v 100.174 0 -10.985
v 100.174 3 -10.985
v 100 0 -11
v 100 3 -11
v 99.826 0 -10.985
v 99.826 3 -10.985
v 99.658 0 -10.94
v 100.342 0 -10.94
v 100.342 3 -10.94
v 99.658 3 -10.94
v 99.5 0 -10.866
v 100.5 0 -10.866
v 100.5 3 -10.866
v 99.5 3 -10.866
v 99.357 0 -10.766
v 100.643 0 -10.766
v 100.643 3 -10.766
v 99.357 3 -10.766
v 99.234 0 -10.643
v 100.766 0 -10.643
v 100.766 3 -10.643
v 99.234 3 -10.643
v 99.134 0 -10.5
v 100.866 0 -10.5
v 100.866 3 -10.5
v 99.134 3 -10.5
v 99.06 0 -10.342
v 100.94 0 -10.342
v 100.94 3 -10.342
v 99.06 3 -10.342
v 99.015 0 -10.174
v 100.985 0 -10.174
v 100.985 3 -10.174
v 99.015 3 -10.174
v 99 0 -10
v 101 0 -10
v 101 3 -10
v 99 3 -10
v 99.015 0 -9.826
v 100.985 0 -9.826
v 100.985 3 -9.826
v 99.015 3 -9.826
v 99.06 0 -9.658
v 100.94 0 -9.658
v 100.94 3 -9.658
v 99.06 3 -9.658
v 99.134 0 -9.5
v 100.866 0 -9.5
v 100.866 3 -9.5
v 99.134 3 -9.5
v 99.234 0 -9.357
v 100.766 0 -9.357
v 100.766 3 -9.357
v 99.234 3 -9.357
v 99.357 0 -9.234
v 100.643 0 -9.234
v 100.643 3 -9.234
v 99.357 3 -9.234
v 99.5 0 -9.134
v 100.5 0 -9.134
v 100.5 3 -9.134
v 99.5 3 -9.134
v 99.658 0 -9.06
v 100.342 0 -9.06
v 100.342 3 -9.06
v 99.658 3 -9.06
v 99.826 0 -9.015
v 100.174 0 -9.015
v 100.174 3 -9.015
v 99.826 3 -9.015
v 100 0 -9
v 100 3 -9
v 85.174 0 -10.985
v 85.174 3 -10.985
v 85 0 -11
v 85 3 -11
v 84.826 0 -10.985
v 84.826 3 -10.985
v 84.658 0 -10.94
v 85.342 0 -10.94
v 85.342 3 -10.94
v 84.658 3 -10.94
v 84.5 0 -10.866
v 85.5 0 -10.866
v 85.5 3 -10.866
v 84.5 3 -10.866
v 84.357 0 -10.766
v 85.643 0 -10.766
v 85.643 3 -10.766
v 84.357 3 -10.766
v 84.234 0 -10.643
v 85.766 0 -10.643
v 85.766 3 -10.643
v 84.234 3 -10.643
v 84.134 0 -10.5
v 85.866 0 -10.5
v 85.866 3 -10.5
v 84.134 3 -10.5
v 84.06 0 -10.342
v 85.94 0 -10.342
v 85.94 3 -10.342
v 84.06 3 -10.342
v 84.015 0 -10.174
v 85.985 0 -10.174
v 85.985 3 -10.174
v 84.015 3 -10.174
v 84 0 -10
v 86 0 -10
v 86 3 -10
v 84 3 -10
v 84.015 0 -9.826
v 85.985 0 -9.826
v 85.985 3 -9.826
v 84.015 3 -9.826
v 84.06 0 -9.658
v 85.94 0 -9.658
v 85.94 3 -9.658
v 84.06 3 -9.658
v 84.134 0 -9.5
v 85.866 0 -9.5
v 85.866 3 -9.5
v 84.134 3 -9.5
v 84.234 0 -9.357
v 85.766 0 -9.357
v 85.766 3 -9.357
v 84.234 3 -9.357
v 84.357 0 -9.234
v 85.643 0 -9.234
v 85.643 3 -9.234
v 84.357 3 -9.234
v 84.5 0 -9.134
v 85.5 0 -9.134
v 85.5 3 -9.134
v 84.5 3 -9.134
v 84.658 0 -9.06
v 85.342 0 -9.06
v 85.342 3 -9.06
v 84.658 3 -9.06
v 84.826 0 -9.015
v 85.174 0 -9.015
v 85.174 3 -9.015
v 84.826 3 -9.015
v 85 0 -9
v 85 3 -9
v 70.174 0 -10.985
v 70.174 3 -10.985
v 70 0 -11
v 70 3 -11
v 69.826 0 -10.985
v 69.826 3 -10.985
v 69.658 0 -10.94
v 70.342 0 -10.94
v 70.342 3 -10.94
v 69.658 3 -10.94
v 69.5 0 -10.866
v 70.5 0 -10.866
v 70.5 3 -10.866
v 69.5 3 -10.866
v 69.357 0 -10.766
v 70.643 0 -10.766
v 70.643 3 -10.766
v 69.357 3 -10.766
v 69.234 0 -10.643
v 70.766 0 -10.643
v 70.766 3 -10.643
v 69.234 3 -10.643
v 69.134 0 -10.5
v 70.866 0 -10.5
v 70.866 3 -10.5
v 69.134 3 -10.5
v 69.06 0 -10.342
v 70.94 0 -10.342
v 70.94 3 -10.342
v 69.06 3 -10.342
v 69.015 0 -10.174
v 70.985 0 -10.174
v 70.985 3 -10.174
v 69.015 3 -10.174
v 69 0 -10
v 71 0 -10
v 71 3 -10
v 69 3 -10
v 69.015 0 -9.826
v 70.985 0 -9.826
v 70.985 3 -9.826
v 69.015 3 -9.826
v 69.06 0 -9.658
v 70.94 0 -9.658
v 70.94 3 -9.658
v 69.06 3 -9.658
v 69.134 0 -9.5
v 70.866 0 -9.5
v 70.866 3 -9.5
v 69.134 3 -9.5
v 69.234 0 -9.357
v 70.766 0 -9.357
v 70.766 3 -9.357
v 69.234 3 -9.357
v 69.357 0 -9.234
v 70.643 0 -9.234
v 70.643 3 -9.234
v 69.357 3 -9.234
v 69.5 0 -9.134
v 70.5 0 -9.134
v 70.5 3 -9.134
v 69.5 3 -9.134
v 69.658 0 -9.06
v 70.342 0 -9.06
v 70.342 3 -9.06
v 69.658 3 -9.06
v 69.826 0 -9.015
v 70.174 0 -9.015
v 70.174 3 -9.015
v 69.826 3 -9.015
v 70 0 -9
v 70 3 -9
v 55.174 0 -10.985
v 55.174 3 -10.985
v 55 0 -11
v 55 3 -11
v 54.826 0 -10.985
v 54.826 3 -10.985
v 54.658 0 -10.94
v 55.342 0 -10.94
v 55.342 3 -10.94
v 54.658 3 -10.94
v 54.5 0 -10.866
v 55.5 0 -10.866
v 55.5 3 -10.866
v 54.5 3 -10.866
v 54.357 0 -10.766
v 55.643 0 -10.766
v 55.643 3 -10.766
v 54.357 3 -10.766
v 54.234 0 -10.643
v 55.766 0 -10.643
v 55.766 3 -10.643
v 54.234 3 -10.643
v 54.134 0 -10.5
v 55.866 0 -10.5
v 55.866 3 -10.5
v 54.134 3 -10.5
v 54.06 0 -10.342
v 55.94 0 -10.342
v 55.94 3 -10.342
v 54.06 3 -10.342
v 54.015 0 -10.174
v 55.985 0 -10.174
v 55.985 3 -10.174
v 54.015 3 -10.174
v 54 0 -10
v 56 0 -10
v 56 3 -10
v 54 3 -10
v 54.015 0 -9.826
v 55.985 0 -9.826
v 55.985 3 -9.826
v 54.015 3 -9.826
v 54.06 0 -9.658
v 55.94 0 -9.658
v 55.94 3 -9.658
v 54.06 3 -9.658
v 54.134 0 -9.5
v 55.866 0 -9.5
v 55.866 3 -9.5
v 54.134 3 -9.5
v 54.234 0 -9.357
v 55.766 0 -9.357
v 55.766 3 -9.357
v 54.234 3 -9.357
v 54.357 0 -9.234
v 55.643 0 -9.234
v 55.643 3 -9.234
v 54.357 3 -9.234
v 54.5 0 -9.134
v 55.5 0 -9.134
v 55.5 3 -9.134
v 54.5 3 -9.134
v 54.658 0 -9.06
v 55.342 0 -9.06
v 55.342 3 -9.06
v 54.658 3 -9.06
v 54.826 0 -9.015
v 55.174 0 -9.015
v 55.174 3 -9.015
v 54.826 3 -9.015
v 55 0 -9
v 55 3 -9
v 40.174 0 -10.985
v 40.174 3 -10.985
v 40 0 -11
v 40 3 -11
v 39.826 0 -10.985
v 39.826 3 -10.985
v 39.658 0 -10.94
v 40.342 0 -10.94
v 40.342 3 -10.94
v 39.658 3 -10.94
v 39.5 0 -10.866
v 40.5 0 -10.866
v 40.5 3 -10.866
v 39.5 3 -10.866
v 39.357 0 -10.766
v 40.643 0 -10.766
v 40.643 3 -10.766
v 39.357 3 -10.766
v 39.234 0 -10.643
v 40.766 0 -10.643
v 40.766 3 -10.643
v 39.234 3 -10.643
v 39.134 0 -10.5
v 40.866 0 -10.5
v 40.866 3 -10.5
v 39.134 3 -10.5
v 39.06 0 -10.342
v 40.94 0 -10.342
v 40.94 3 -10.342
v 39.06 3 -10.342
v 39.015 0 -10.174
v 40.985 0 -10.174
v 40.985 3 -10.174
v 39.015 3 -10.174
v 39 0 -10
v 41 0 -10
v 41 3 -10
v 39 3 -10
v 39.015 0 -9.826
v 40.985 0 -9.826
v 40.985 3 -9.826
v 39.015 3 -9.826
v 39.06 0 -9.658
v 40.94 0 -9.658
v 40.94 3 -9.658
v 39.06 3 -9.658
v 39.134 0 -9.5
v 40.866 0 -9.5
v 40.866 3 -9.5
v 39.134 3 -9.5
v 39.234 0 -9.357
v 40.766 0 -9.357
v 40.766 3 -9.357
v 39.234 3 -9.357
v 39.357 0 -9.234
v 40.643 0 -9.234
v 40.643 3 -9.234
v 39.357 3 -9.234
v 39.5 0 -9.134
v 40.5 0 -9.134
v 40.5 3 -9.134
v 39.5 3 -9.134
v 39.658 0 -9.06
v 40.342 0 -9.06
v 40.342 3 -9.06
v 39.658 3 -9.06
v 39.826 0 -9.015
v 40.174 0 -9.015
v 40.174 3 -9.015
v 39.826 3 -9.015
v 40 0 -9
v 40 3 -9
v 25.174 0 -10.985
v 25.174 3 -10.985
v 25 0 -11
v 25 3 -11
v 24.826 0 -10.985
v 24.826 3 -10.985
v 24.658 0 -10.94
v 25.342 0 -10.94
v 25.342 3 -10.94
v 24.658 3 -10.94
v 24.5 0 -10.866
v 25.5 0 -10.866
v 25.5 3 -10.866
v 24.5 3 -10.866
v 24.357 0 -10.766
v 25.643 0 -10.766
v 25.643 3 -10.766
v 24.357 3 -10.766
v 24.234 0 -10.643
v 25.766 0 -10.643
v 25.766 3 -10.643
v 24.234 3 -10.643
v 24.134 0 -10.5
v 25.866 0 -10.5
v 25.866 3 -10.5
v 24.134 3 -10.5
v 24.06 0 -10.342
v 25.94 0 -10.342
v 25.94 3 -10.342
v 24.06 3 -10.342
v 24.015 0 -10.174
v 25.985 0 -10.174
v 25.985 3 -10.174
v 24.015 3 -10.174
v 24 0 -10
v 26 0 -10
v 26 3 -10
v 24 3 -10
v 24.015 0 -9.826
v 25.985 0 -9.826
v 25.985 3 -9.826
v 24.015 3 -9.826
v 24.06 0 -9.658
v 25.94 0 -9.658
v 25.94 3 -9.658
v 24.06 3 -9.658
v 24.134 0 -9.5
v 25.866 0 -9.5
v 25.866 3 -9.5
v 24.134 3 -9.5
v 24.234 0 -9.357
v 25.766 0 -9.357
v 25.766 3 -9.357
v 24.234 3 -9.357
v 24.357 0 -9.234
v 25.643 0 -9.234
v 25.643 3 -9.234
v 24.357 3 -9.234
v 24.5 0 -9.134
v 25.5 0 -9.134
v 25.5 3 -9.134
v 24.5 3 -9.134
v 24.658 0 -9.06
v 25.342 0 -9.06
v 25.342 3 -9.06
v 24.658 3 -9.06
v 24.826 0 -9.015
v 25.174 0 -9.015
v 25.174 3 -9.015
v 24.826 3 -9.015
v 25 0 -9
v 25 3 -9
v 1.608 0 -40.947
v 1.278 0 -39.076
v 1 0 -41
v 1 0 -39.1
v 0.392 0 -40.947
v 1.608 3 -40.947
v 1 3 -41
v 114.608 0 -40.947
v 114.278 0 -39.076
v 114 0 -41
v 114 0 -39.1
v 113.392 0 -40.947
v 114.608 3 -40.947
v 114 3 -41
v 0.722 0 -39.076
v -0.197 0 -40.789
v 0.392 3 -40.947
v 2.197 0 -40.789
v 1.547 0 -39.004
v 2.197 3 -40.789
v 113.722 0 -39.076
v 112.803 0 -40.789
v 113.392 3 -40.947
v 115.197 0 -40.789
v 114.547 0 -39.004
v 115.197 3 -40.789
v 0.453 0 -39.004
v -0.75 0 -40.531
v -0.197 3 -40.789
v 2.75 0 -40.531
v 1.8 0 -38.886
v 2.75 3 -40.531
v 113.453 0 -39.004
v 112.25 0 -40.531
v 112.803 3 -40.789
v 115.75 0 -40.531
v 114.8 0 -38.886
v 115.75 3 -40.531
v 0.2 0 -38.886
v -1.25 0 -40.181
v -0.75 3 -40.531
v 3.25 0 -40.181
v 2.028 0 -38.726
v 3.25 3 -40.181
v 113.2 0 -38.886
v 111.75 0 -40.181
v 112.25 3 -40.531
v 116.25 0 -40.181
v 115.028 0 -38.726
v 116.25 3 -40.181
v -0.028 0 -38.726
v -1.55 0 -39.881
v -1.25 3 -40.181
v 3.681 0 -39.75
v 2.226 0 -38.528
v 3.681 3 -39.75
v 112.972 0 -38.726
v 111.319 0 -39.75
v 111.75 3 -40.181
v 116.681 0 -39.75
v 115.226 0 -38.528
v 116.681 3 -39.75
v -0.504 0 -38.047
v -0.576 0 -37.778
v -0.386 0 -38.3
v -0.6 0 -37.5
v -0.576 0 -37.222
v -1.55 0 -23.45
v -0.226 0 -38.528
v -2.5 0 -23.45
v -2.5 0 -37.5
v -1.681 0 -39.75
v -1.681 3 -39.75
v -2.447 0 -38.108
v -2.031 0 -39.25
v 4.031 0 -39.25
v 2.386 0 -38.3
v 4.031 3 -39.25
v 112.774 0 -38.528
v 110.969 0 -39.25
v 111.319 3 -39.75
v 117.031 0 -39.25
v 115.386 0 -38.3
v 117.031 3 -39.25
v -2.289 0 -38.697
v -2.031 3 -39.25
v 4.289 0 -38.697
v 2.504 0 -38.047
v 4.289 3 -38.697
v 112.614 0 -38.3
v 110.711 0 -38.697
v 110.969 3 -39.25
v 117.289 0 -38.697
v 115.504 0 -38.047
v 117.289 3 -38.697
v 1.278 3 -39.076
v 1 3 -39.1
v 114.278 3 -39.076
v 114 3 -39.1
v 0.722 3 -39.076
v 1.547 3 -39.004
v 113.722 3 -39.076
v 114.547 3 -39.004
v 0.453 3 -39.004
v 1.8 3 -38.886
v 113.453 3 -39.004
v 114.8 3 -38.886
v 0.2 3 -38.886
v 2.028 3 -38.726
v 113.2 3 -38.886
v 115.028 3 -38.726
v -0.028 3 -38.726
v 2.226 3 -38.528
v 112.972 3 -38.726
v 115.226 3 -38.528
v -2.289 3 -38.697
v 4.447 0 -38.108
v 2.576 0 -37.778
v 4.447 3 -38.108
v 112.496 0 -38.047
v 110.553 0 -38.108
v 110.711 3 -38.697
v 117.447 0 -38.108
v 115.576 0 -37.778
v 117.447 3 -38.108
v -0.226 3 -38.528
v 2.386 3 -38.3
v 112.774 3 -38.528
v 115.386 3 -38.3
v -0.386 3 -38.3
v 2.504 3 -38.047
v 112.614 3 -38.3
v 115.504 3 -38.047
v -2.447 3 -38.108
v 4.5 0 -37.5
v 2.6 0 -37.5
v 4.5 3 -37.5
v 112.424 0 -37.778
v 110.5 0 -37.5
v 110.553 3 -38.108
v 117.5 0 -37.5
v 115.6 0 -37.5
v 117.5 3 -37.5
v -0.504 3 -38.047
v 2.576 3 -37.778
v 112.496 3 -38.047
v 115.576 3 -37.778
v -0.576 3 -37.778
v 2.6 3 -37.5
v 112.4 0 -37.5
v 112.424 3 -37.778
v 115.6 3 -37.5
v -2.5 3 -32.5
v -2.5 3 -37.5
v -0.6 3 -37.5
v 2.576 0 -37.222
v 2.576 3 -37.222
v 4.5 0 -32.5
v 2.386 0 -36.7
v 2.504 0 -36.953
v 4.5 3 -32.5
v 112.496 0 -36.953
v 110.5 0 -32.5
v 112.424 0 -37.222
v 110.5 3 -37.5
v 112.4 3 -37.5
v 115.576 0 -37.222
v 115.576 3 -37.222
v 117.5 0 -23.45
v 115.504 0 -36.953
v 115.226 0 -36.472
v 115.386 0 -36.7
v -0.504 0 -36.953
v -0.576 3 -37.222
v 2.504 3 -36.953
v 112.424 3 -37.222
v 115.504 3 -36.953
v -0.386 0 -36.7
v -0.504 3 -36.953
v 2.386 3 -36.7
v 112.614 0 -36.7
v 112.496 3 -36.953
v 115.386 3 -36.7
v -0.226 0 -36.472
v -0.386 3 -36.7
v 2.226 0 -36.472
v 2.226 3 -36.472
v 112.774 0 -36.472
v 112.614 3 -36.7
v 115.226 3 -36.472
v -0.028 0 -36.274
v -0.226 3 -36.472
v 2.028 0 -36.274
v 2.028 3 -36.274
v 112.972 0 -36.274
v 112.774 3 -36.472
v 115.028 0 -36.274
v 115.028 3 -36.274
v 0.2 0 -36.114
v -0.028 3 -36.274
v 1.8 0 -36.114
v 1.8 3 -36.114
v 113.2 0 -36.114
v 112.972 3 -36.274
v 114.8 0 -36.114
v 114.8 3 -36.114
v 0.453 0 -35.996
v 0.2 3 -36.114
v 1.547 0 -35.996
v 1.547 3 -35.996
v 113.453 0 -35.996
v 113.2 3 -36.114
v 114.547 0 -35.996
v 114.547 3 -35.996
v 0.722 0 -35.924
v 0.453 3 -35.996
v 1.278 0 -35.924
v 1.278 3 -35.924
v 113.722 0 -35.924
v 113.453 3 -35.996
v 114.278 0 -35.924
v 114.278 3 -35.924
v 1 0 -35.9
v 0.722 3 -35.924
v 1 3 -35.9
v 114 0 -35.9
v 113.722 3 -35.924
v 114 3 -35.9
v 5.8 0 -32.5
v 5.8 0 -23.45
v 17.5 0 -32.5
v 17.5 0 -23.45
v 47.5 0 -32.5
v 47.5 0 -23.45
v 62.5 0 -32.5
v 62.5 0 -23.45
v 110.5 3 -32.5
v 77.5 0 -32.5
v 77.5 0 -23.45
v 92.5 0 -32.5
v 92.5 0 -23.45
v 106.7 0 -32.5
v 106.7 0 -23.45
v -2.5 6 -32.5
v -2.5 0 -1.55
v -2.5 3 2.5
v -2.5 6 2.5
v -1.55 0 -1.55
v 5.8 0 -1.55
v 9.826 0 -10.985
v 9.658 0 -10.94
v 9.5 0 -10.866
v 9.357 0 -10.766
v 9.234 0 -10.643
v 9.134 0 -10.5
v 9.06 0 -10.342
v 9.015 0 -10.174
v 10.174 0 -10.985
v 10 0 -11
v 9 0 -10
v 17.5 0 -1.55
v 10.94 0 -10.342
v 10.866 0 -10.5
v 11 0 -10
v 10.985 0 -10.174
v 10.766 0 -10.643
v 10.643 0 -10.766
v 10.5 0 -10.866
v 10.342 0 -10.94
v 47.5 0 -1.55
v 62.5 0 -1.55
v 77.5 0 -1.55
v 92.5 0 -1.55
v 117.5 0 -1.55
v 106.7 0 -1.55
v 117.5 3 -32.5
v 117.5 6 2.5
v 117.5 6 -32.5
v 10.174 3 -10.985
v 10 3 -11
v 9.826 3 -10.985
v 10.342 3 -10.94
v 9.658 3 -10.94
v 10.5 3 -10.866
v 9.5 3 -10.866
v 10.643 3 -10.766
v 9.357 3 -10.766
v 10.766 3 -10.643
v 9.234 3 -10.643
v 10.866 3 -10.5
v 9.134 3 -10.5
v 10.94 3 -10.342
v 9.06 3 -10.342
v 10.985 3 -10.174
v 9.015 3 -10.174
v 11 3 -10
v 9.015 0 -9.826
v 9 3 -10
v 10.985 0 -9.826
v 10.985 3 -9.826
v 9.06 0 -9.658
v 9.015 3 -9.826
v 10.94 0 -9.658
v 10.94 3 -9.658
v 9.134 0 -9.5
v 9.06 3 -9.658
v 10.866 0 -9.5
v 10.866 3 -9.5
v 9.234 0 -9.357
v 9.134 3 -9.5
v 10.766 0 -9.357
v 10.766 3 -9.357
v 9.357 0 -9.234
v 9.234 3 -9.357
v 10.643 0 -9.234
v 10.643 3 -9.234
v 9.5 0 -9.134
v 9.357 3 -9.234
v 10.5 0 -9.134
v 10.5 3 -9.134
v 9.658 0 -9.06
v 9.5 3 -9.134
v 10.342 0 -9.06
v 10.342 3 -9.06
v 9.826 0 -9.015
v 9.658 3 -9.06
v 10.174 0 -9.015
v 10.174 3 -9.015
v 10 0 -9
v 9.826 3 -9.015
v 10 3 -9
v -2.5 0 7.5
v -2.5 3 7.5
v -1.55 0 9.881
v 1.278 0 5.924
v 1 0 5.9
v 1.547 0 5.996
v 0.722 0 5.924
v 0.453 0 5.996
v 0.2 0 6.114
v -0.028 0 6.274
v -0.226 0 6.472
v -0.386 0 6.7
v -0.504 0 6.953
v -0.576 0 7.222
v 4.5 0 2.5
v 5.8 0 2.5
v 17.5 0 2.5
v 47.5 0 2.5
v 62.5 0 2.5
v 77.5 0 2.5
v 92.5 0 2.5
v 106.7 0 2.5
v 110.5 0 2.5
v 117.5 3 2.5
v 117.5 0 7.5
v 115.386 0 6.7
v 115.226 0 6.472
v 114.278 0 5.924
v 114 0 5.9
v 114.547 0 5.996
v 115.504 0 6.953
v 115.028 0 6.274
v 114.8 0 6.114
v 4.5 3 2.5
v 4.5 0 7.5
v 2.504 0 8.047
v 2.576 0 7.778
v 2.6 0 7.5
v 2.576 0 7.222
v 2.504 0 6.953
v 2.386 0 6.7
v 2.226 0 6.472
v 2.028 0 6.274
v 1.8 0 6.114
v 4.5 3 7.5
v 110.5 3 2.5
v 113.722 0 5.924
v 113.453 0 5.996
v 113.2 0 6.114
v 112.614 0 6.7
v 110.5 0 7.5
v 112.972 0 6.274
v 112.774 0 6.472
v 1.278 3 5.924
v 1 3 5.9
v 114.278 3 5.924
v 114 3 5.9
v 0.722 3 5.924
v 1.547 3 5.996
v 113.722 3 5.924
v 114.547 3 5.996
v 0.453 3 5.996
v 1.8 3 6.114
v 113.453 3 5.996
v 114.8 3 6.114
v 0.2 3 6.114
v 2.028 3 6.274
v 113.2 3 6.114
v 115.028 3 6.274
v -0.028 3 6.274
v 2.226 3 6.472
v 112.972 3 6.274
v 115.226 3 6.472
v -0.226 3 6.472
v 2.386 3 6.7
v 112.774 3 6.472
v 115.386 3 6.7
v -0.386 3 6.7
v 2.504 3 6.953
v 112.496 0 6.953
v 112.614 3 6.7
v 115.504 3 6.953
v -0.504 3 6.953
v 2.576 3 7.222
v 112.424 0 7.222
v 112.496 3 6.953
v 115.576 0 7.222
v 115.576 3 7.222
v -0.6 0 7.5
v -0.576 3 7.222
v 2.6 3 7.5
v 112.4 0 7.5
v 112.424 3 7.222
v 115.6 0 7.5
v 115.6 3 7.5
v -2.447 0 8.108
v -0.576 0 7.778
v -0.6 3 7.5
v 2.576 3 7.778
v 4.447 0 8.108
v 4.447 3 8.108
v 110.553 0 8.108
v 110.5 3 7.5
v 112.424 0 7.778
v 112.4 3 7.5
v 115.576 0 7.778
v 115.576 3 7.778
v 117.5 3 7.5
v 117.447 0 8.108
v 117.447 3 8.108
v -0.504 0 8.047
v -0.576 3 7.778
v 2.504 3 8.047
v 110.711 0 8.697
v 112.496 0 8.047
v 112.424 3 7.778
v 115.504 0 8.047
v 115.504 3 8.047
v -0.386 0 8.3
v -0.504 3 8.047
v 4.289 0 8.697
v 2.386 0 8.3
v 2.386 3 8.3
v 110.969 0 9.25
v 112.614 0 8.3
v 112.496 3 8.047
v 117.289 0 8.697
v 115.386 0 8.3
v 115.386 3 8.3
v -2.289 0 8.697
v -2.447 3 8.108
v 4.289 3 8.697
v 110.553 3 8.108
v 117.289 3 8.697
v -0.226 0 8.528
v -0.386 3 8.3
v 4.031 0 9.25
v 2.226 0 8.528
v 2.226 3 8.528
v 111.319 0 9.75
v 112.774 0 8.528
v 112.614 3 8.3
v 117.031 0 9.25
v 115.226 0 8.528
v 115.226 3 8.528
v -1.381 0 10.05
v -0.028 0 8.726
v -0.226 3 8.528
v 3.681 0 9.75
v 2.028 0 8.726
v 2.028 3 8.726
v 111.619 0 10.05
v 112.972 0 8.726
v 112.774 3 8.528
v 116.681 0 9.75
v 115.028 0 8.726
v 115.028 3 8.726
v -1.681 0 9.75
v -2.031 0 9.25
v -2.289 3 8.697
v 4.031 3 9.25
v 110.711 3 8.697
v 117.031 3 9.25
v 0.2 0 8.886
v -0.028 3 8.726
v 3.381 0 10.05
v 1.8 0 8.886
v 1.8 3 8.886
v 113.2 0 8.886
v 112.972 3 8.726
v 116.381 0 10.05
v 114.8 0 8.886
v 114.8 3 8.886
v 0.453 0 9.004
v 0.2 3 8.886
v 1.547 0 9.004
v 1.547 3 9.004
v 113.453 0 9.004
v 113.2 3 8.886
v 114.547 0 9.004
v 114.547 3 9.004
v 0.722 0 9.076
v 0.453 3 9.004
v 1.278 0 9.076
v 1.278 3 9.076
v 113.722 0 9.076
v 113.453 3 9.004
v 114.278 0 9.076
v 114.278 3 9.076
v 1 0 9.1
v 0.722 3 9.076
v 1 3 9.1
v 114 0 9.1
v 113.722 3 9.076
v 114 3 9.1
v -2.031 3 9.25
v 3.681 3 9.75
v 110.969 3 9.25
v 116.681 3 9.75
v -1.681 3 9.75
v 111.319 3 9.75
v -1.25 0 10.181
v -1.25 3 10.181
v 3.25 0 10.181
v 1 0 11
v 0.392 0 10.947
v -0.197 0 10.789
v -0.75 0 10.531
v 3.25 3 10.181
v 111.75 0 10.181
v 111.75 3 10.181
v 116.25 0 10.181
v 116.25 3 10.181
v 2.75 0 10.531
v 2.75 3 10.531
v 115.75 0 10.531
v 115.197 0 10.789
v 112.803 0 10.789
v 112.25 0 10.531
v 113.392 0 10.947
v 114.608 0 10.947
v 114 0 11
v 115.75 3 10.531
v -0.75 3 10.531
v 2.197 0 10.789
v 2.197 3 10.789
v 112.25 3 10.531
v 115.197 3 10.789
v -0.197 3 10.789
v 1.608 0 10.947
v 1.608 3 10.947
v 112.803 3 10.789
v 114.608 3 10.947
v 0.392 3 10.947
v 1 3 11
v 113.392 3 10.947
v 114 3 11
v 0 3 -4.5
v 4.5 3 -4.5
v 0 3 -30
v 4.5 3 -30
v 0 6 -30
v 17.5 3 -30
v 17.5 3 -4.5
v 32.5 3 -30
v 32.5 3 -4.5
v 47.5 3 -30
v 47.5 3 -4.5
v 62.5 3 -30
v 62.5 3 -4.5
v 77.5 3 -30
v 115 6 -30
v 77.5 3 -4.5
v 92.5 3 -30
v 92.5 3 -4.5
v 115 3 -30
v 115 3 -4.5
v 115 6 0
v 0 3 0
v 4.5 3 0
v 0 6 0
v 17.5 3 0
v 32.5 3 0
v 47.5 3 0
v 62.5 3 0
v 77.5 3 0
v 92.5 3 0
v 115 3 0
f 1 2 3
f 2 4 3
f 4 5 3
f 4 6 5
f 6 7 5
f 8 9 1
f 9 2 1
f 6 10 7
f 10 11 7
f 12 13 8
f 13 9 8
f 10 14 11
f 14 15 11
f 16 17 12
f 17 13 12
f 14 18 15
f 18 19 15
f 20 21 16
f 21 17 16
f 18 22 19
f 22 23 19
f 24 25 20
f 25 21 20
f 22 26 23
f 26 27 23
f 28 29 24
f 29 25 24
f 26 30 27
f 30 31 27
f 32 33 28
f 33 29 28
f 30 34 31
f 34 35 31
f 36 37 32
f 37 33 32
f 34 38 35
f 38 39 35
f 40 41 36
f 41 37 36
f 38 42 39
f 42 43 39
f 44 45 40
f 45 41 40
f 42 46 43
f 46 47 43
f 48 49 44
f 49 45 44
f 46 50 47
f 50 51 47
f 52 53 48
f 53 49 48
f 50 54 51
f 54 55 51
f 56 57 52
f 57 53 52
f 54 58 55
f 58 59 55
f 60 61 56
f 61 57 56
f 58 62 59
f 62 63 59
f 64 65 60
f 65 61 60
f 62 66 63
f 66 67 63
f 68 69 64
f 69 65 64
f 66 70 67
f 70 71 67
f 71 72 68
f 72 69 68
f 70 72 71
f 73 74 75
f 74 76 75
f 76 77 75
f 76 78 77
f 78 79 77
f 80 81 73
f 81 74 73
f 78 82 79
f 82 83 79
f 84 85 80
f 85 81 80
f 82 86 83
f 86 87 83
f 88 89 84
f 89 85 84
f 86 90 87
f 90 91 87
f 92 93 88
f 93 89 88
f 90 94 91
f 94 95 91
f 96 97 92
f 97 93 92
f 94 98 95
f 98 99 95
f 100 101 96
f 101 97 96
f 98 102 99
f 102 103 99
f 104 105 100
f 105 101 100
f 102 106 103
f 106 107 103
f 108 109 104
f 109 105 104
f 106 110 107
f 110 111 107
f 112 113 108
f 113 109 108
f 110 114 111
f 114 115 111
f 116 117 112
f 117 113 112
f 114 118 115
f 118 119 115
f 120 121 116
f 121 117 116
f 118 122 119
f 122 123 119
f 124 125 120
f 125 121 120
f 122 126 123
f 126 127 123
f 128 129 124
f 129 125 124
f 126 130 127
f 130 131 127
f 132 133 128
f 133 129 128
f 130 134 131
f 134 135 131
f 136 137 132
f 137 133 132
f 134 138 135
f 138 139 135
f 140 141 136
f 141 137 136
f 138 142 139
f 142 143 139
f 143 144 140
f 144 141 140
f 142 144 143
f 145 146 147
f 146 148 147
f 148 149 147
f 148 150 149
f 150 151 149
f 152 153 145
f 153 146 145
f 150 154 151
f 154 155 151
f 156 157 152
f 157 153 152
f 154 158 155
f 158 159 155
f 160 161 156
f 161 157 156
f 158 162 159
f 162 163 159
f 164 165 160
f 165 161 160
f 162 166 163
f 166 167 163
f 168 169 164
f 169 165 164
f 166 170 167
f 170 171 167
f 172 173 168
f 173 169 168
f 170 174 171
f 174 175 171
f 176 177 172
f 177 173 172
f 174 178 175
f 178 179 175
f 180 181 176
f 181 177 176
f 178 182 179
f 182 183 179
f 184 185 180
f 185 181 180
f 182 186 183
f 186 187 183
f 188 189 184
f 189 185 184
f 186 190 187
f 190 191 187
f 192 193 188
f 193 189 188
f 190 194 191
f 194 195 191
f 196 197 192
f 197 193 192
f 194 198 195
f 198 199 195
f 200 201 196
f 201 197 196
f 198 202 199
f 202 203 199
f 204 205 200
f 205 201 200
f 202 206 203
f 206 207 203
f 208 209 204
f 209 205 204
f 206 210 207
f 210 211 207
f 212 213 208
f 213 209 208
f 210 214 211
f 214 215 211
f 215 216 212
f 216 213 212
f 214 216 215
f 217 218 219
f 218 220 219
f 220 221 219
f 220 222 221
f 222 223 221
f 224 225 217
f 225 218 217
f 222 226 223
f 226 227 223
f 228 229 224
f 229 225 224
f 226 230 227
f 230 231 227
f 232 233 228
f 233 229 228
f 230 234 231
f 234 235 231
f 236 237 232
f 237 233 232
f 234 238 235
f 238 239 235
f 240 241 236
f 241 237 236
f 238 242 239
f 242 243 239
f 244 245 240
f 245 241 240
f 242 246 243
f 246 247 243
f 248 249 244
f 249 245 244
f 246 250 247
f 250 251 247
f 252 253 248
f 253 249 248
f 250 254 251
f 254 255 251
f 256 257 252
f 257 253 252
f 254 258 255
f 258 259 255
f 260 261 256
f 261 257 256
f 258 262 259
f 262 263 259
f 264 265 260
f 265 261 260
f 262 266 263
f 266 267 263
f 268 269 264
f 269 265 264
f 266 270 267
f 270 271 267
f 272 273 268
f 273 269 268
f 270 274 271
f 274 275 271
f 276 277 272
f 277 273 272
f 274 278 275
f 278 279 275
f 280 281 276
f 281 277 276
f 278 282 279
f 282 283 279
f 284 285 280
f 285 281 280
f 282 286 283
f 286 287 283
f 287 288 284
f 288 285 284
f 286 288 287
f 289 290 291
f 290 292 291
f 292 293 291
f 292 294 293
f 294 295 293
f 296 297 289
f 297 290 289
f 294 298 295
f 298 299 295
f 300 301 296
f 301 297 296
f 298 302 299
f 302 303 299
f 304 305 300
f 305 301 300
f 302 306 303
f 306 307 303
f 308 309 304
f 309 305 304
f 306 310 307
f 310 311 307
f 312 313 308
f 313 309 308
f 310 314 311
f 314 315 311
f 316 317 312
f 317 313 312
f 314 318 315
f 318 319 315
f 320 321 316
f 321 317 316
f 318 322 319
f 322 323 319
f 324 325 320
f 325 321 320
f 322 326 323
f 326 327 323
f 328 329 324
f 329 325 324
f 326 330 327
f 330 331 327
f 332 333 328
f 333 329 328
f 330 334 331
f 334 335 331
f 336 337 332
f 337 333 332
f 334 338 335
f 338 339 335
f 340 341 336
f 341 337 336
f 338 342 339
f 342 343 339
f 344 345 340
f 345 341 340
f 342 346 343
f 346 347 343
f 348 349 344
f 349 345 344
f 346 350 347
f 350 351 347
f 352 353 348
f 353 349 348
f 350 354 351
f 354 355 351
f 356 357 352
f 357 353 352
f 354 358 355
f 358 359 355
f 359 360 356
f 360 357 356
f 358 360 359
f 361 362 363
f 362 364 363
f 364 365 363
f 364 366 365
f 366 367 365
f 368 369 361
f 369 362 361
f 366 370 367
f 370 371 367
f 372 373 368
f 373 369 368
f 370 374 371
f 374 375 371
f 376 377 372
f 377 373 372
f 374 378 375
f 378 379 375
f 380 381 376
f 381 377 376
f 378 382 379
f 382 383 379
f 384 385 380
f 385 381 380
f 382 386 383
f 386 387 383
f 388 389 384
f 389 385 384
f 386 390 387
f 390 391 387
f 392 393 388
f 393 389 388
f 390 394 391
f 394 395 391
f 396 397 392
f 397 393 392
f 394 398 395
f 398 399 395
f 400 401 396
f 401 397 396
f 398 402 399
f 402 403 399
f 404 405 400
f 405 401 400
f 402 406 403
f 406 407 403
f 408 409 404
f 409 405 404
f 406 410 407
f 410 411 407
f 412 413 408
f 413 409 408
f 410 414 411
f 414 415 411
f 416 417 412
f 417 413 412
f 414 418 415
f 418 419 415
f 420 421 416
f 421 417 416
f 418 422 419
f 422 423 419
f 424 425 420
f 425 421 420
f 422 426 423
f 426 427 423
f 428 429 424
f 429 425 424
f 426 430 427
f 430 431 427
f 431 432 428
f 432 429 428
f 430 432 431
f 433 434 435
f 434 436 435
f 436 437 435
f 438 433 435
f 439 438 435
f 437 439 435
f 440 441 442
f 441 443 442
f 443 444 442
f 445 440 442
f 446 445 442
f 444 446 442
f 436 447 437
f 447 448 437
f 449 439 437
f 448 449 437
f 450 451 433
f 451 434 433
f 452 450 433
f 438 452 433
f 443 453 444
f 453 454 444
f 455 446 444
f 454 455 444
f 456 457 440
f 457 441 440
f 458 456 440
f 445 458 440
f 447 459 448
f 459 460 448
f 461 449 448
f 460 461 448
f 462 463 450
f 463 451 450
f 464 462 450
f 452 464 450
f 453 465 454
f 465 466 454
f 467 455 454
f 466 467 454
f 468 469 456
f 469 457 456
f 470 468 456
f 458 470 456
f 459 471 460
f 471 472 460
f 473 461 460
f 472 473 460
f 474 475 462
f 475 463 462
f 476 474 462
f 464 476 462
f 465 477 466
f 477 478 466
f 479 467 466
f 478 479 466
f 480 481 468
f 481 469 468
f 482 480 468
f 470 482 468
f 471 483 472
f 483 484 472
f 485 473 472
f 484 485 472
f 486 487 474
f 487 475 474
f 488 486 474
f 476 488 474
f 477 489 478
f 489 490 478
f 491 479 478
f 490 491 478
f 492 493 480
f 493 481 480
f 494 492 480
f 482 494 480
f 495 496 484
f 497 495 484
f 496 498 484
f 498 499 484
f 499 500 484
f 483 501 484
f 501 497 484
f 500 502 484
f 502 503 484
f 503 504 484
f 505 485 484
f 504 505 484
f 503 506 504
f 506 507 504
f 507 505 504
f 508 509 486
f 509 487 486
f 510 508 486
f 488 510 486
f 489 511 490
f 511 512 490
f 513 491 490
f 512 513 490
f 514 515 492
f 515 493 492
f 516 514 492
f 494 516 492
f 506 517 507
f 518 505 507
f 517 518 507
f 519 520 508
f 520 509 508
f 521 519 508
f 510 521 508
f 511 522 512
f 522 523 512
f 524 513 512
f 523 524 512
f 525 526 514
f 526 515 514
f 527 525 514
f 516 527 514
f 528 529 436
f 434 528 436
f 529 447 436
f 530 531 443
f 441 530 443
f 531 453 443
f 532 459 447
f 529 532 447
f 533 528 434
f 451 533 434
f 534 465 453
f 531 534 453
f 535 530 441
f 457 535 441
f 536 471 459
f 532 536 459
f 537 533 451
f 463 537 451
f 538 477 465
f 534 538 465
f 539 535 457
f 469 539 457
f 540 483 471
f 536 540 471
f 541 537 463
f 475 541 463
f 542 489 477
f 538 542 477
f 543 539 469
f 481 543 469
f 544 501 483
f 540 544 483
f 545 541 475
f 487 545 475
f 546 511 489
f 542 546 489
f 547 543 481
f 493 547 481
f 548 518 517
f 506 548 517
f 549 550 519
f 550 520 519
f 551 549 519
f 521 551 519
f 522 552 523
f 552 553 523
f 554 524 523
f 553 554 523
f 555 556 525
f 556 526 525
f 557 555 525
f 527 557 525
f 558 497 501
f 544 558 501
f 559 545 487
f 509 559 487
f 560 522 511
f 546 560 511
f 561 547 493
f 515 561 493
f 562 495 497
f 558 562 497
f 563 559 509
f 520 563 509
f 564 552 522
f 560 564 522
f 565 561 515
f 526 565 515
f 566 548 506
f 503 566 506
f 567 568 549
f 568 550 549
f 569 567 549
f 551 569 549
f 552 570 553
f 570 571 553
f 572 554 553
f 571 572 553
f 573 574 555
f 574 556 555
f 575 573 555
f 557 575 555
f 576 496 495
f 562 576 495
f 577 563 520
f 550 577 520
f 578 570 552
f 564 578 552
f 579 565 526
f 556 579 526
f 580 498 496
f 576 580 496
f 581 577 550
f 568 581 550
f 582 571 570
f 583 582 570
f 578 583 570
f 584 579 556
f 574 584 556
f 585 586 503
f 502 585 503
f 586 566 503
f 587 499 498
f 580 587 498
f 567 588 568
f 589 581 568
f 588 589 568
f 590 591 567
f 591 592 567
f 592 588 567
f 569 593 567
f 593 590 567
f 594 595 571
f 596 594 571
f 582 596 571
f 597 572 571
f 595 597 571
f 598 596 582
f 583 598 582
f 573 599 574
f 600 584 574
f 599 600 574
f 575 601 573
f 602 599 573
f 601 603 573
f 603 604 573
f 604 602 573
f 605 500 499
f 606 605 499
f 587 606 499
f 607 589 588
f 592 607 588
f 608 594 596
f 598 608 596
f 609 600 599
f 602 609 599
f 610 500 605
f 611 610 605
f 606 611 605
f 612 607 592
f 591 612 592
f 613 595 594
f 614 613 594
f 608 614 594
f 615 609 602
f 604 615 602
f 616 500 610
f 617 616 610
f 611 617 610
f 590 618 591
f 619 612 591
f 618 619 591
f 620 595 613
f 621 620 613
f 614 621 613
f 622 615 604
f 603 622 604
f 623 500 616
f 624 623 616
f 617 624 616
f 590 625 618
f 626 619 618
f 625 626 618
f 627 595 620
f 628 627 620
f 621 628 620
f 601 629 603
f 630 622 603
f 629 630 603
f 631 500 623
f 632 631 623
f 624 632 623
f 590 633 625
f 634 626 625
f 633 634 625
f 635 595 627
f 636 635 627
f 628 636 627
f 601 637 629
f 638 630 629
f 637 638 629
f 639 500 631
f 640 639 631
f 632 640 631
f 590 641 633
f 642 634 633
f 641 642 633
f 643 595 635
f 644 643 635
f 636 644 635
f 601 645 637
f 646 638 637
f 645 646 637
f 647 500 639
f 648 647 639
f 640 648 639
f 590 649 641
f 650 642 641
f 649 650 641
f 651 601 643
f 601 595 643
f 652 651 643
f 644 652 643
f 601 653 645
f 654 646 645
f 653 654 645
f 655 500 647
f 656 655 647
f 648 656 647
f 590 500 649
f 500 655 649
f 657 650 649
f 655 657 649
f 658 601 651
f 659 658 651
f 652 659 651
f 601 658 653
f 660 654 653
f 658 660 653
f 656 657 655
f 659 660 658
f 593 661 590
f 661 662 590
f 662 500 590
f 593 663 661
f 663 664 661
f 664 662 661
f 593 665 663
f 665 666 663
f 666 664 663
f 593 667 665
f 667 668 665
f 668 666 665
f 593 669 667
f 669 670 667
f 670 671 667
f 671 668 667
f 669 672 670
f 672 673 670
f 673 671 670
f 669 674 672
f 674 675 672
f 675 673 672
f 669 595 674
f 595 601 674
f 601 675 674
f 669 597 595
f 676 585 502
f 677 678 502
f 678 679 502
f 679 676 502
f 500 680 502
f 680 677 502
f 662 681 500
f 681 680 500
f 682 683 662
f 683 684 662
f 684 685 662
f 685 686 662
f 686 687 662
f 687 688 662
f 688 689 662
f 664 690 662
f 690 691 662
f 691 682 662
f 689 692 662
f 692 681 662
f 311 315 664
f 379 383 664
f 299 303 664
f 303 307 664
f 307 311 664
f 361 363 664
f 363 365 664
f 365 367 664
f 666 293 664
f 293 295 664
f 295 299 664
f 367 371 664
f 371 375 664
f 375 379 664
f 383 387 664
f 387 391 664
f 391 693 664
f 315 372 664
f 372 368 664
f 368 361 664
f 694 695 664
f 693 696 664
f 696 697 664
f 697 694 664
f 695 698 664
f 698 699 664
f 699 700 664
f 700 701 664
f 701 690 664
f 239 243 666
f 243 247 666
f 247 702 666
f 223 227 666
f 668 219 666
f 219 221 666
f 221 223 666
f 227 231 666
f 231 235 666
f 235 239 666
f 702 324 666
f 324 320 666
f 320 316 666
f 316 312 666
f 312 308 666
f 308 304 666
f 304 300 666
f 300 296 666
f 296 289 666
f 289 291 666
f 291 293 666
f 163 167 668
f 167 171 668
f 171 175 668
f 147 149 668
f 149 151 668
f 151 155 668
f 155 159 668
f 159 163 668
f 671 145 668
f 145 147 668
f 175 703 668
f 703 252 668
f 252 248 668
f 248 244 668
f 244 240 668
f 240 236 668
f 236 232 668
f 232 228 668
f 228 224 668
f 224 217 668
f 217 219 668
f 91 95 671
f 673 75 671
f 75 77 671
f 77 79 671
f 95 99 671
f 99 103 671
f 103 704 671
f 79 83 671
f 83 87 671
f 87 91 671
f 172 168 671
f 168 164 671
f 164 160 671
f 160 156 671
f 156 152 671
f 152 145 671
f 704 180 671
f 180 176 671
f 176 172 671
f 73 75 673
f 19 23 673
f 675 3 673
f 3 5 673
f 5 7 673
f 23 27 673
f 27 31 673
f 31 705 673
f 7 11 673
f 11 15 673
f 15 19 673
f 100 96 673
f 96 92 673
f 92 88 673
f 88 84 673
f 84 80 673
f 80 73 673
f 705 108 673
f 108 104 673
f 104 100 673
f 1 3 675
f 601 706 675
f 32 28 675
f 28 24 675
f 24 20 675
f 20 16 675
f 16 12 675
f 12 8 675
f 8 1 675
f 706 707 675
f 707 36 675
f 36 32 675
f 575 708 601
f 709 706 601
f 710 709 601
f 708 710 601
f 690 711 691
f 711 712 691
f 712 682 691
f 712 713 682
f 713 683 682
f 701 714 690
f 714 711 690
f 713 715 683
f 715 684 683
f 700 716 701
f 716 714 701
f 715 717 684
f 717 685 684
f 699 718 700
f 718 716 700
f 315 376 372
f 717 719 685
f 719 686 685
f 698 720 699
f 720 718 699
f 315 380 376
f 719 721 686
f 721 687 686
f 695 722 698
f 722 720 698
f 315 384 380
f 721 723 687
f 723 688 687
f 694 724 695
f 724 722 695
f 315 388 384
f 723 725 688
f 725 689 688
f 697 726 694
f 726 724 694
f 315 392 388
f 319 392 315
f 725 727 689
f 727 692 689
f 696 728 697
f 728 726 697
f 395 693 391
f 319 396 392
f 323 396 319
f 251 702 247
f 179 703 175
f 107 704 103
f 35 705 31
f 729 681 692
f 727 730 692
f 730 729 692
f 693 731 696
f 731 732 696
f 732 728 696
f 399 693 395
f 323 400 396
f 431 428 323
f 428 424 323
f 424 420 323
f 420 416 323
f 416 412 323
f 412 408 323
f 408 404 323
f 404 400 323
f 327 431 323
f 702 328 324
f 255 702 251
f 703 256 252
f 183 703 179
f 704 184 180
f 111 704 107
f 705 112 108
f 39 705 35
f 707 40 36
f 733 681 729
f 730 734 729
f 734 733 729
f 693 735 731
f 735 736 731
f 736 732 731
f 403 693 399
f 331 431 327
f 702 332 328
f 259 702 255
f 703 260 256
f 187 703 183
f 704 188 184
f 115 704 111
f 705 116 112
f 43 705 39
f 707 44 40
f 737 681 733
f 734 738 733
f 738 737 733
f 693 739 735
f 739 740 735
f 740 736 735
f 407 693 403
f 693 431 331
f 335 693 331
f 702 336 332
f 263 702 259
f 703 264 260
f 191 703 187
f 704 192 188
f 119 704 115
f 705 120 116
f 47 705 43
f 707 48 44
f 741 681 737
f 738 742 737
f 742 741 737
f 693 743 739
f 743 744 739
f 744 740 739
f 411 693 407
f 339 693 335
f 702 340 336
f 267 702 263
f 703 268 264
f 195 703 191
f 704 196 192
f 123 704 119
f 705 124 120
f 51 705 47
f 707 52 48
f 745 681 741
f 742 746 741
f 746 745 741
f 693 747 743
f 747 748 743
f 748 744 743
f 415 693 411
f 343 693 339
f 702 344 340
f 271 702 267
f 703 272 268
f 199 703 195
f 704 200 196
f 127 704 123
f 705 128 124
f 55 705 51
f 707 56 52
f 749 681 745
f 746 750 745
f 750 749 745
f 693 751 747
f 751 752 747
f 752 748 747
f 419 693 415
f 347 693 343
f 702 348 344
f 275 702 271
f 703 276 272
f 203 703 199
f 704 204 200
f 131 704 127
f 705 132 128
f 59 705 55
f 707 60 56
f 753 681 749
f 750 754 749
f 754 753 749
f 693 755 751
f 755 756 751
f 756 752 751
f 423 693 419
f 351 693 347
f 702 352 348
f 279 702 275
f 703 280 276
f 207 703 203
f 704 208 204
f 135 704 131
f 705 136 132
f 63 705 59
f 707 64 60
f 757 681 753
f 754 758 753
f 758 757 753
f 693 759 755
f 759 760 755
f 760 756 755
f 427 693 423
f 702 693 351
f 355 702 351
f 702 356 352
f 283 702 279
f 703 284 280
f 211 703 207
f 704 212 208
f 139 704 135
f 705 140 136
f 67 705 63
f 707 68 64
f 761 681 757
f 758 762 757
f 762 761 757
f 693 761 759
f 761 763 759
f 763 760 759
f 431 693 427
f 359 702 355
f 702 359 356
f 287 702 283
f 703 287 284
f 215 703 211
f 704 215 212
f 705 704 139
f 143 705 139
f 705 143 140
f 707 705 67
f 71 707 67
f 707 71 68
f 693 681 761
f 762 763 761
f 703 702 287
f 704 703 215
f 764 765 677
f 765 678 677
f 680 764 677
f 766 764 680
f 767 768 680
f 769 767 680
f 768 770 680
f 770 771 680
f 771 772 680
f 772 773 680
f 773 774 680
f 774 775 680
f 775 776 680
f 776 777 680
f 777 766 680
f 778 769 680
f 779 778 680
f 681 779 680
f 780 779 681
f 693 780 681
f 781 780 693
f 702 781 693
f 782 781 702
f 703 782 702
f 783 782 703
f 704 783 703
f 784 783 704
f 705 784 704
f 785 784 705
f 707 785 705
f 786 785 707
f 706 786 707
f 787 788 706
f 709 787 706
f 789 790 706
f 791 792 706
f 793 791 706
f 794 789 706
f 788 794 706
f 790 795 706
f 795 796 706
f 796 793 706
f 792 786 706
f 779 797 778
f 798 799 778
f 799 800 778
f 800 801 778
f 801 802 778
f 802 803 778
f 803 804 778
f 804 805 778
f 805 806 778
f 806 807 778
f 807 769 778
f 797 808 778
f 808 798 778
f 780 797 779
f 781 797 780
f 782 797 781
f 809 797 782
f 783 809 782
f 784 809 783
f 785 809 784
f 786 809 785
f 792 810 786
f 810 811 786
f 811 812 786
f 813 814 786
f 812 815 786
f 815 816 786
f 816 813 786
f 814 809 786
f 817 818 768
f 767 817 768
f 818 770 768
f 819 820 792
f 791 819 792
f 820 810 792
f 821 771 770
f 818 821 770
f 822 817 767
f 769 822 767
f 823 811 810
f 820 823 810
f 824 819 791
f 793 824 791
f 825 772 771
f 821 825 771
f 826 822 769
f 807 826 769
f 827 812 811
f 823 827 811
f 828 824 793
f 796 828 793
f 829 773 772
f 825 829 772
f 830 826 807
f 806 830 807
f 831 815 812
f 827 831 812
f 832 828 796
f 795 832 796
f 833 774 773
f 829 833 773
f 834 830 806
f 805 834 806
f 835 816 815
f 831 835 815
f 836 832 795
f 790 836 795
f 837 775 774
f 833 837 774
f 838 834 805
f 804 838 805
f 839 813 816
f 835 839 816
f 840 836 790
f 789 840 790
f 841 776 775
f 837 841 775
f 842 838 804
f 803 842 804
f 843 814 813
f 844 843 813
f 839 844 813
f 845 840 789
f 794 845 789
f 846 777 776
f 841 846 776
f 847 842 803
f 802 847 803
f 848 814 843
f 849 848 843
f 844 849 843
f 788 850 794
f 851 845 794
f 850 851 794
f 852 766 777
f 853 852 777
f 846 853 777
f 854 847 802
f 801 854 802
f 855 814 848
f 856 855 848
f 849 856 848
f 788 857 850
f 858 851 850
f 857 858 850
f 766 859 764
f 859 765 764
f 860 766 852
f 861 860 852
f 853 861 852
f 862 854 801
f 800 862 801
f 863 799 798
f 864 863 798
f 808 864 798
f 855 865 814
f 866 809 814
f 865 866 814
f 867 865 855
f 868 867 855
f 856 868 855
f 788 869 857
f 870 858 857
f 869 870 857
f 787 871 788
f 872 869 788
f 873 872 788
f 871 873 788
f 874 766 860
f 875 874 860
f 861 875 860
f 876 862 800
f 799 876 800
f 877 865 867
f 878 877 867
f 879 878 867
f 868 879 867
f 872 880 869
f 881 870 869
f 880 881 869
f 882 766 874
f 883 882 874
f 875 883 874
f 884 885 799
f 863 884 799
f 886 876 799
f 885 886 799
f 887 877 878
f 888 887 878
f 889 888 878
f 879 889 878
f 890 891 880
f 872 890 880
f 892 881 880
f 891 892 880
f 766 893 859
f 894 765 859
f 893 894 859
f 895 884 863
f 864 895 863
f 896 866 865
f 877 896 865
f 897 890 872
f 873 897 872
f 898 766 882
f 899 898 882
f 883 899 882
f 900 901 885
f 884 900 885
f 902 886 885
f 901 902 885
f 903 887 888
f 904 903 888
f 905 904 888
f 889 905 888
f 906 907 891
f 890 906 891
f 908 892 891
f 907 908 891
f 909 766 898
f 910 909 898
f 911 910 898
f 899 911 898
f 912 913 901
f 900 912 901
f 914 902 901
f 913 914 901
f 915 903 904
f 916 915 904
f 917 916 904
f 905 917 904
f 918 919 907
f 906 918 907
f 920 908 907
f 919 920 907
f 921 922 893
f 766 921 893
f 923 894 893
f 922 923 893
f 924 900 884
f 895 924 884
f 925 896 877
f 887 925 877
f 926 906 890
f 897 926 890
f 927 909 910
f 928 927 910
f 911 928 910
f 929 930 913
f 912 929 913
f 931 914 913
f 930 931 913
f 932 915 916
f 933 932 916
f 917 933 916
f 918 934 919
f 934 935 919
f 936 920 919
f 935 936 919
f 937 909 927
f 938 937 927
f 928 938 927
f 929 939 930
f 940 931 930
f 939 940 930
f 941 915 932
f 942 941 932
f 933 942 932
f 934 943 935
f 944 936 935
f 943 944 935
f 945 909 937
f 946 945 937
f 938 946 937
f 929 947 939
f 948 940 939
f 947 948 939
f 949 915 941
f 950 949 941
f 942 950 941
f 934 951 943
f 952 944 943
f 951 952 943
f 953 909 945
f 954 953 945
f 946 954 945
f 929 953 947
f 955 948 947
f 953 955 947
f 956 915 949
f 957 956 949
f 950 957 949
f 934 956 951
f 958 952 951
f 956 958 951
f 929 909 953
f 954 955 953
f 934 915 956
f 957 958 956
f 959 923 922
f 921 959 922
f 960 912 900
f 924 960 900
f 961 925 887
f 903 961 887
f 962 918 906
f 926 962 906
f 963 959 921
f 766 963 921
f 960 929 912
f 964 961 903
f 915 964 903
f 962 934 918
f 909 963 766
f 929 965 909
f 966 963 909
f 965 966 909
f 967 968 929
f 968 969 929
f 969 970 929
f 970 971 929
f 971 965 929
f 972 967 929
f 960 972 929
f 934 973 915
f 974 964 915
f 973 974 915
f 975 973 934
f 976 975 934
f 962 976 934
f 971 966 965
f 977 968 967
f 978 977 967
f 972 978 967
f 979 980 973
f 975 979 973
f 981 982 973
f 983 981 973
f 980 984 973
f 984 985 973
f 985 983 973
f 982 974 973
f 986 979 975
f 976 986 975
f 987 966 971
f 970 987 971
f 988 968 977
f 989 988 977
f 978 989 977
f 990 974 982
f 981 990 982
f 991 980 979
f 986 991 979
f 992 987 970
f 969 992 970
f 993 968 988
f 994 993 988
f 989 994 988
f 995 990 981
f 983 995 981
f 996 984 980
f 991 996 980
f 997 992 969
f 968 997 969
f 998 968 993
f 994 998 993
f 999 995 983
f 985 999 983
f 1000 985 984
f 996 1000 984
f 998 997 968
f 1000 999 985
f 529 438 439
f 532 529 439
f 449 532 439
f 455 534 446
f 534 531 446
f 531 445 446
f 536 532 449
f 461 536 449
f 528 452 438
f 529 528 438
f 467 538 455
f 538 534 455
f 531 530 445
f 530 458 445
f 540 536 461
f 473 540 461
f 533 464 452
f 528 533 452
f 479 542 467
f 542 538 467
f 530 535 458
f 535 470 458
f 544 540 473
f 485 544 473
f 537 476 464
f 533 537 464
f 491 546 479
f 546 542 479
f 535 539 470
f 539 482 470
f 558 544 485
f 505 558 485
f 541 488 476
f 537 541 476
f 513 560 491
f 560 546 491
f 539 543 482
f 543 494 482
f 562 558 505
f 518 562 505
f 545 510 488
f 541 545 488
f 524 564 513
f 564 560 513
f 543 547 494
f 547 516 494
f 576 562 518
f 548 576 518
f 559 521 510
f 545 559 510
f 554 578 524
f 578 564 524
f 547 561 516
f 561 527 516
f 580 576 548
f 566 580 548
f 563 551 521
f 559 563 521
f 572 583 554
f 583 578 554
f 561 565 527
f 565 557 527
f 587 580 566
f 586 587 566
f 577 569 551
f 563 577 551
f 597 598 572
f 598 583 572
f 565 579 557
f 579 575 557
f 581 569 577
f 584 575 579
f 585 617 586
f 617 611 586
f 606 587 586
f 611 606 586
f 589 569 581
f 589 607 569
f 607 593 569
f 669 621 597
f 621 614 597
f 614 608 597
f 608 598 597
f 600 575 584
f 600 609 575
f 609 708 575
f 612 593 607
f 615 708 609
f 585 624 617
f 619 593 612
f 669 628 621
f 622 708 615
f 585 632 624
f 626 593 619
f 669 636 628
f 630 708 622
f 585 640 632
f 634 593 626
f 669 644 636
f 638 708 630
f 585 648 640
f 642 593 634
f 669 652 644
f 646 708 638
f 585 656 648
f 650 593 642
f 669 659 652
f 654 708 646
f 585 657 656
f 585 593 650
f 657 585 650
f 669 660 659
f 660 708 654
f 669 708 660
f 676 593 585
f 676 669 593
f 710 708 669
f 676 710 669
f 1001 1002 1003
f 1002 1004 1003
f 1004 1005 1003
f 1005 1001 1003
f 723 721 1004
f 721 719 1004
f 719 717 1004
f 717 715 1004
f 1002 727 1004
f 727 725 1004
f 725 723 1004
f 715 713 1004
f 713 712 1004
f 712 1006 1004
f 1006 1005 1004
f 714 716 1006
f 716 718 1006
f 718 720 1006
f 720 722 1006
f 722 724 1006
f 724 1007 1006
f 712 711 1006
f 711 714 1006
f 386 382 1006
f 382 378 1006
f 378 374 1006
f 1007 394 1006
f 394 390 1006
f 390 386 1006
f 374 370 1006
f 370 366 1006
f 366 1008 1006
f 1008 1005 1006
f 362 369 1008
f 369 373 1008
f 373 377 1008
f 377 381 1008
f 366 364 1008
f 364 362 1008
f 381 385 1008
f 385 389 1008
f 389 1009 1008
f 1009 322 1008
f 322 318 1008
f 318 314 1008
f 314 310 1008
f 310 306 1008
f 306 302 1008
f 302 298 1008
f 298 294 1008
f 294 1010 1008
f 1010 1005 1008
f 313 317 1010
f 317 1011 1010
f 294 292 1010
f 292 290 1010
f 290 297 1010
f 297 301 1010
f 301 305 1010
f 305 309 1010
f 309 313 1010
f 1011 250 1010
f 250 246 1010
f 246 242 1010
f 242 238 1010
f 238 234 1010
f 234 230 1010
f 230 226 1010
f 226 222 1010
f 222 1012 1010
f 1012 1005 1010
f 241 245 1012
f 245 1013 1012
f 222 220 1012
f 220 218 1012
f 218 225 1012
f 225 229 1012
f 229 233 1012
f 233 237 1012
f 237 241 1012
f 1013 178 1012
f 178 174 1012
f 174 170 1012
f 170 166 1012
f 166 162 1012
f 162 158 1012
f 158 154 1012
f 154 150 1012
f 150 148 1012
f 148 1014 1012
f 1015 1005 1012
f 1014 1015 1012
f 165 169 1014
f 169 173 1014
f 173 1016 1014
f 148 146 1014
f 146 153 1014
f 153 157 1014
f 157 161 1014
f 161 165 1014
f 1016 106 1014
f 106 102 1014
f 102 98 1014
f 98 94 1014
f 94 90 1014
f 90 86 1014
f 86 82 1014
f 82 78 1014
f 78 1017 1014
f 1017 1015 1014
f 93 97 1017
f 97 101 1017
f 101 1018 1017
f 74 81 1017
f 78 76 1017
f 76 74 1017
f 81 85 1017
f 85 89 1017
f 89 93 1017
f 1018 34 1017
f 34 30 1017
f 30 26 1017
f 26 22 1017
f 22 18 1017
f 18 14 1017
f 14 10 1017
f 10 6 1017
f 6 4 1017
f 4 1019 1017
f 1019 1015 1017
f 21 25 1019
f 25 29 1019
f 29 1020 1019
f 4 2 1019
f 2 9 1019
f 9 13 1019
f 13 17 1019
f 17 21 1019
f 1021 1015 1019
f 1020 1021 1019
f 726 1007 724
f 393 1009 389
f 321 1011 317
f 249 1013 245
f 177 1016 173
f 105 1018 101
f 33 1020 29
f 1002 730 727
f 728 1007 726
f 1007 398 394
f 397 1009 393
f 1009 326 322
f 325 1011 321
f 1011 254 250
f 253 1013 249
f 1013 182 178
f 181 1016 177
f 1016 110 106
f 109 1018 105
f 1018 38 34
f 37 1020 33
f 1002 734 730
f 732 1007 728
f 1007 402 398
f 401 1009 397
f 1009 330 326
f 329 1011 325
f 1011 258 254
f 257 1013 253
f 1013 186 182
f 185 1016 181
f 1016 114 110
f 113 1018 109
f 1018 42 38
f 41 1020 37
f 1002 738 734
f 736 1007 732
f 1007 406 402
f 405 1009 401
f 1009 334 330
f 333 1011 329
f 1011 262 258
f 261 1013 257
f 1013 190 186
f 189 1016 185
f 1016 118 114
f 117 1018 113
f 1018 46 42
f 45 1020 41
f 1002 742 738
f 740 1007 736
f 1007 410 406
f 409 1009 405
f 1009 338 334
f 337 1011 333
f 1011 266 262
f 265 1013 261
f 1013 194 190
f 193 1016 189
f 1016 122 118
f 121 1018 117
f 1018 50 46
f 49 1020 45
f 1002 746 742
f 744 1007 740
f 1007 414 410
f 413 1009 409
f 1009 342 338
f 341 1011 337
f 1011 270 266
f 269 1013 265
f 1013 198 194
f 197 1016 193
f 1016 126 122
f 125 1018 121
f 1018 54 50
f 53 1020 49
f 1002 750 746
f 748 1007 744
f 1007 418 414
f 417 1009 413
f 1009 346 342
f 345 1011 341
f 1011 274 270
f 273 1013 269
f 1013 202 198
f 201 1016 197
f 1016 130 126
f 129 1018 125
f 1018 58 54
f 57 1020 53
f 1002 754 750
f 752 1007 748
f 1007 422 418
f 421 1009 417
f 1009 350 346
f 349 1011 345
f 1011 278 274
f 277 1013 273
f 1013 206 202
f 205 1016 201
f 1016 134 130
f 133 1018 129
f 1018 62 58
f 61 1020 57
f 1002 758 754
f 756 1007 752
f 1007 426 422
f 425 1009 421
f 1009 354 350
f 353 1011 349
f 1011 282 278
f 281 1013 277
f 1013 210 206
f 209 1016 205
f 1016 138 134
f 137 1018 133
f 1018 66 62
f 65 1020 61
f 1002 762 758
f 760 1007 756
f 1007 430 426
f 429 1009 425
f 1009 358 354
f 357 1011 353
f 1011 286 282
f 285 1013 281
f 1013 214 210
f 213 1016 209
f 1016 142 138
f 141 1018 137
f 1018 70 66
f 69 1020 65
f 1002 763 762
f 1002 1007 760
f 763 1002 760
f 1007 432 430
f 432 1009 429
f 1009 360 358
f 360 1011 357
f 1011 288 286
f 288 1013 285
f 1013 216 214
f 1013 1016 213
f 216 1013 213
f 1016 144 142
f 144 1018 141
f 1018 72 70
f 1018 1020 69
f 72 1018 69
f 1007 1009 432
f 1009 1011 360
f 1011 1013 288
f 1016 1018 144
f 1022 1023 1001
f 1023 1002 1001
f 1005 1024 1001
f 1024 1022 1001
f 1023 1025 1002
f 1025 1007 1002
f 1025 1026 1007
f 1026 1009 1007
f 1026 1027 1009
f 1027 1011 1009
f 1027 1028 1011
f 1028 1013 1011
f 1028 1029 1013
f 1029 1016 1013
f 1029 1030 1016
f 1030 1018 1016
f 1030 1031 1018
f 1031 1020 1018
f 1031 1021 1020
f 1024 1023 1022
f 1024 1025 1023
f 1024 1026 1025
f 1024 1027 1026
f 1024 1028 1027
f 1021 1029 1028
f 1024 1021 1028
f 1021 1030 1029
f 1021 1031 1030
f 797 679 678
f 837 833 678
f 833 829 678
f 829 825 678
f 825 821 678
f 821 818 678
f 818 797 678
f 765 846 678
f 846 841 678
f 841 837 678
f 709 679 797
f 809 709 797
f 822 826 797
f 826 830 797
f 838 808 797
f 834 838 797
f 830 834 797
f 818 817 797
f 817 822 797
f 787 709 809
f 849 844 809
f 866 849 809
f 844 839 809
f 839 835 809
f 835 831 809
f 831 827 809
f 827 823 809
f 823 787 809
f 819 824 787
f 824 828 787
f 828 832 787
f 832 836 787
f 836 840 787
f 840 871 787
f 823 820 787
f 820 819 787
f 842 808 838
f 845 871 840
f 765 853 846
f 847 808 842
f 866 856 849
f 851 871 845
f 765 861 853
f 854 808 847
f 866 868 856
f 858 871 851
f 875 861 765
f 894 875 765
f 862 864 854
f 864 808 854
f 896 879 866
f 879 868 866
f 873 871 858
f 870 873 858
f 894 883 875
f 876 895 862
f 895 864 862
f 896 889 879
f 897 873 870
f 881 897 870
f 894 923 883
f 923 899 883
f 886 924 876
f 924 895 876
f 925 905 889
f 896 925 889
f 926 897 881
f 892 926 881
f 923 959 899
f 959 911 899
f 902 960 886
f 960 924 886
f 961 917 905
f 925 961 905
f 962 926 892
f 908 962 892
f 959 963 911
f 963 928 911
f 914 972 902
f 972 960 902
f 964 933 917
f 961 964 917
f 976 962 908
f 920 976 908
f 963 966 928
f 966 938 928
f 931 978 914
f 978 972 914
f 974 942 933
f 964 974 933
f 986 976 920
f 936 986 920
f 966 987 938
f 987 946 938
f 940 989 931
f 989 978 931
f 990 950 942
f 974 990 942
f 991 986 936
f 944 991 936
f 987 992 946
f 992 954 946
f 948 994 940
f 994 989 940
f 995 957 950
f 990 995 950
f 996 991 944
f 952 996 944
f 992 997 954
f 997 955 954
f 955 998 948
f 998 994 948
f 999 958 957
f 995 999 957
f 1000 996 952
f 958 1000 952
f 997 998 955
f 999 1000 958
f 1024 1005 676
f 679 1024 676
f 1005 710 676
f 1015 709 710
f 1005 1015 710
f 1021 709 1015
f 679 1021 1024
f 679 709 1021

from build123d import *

# Parameters (mm, degrees)
SKETCH1_W               = 115
SKETCH1_H               = 30
BOSS_EXTRUDE1_DEPTH     = 3
SKETCH2_W               = 120
SKETCH2_H               = 35
SKETCH2_W_2             = 115
SKETCH2_H_2             = 30
BOSS_EXTRUDE3_DEPTH     = 6
SKETCH4_R               = 1
CUT_EXTRUDE1_DEPTH      = 4
LPATTERN1_COUNT         = 7
LPATTERN1_PITCH         = 15
SKETCH5_R               = 1.6
BOSS_EXTRUDE4_DEPTH     = 3
MIRROR2_COPY_1_SKETCH_R = 1.6
MIRROR2_COPY_1_DEPTH    = 3


with BuildPart() as part:
    # Sketch1 → Boss-Extrude1 (new body)
    with BuildSketch(Plane(origin=(0, 0, 0), x_dir=(1, 0, 0), z_dir=(0, 1, 0))):
        with Locations((57.5, 15)):
            Rectangle(SKETCH1_W, SKETCH1_H)
    extrude(amount=BOSS_EXTRUDE1_DEPTH)

    # Sketch2 → Boss-Extrude3 (add)
    with BuildSketch(Plane(origin=(0, 0, 0), x_dir=(1, 0, 0), z_dir=(0, 1, 0))):
        with Locations((57.5, 15)):
            Rectangle(SKETCH2_W, SKETCH2_H)
        with Locations((57.5, 15)):
            Rectangle(SKETCH2_W_2, SKETCH2_H_2, mode=Mode.SUBTRACT)
    extrude(amount=BOSS_EXTRUDE3_DEPTH)

    # Sketch4 → Cut-Extrude1 (cut, symmetric)
    with BuildSketch(Plane(origin=(0, 3, 0), x_dir=(1, 0, 0), z_dir=(0, 1, 0))):
        with Locations((10, 10)):
            Circle(SKETCH4_R)
    cut_extrude1 = extrude(amount=CUT_EXTRUDE1_DEPTH, both=True, mode=Mode.SUBTRACT)

    # LPattern1: Cut-Extrude1 ×7
    with Locations(*[(i * LPATTERN1_PITCH, 0, 0) for i in range(1, LPATTERN1_COUNT)]):
        add(cut_extrude1, mode=Mode.SUBTRACT)

    # Sketch5 → Boss-Extrude4 (add)
    with BuildSketch(Plane(origin=(0, 0, 0), x_dir=(1, 0, 0), z_dir=(0, 1, 0))):
        with BuildLine():
            Line((-2.5, -2.5), (-2.5, -7.5))
            ThreePointArc((-2.5, -7.5), (1, -11), (4.5, -7.5))
            Line((4.5, -7.5), (4.5, -2.5))
            Line((4.5, -2.5), (-2.5, -2.5))
        make_face()
        with Locations((1, -7.5)):
            Circle(SKETCH5_R, mode=Mode.SUBTRACT)
    boss_extrude4 = extrude(amount=BOSS_EXTRUDE4_DEPTH)

    # Mirror1: Boss-Extrude4 across plane
    add(boss_extrude4.mirror(Plane.XY.offset(-15)))

    # Mirror2: Boss-Extrude4 across plane
    add(boss_extrude4.mirror(Plane.ZY.offset(-57.5)))

    # Mirror2 copy 1 sketch → Mirror2 copy 1 (add)
    with BuildSketch(Plane(origin=(115, 0, -30), x_dir=(-1, 0, 0), z_dir=(0, 1, 0))):
        with BuildLine():
            Line((-2.5, -2.5), (-2.5, -7.5))
            ThreePointArc((-2.5, -7.5), (1, -11), (4.5, -7.5))
            Line((4.5, -7.5), (4.5, -2.5))
            Line((4.5, -2.5), (-2.5, -2.5))
        make_face()
        with Locations((1, -7.5)):
            Circle(MIRROR2_COPY_1_SKETCH_R, mode=Mode.SUBTRACT)
    extrude(amount=MIRROR2_COPY_1_DEPTH)


solid = part.part
